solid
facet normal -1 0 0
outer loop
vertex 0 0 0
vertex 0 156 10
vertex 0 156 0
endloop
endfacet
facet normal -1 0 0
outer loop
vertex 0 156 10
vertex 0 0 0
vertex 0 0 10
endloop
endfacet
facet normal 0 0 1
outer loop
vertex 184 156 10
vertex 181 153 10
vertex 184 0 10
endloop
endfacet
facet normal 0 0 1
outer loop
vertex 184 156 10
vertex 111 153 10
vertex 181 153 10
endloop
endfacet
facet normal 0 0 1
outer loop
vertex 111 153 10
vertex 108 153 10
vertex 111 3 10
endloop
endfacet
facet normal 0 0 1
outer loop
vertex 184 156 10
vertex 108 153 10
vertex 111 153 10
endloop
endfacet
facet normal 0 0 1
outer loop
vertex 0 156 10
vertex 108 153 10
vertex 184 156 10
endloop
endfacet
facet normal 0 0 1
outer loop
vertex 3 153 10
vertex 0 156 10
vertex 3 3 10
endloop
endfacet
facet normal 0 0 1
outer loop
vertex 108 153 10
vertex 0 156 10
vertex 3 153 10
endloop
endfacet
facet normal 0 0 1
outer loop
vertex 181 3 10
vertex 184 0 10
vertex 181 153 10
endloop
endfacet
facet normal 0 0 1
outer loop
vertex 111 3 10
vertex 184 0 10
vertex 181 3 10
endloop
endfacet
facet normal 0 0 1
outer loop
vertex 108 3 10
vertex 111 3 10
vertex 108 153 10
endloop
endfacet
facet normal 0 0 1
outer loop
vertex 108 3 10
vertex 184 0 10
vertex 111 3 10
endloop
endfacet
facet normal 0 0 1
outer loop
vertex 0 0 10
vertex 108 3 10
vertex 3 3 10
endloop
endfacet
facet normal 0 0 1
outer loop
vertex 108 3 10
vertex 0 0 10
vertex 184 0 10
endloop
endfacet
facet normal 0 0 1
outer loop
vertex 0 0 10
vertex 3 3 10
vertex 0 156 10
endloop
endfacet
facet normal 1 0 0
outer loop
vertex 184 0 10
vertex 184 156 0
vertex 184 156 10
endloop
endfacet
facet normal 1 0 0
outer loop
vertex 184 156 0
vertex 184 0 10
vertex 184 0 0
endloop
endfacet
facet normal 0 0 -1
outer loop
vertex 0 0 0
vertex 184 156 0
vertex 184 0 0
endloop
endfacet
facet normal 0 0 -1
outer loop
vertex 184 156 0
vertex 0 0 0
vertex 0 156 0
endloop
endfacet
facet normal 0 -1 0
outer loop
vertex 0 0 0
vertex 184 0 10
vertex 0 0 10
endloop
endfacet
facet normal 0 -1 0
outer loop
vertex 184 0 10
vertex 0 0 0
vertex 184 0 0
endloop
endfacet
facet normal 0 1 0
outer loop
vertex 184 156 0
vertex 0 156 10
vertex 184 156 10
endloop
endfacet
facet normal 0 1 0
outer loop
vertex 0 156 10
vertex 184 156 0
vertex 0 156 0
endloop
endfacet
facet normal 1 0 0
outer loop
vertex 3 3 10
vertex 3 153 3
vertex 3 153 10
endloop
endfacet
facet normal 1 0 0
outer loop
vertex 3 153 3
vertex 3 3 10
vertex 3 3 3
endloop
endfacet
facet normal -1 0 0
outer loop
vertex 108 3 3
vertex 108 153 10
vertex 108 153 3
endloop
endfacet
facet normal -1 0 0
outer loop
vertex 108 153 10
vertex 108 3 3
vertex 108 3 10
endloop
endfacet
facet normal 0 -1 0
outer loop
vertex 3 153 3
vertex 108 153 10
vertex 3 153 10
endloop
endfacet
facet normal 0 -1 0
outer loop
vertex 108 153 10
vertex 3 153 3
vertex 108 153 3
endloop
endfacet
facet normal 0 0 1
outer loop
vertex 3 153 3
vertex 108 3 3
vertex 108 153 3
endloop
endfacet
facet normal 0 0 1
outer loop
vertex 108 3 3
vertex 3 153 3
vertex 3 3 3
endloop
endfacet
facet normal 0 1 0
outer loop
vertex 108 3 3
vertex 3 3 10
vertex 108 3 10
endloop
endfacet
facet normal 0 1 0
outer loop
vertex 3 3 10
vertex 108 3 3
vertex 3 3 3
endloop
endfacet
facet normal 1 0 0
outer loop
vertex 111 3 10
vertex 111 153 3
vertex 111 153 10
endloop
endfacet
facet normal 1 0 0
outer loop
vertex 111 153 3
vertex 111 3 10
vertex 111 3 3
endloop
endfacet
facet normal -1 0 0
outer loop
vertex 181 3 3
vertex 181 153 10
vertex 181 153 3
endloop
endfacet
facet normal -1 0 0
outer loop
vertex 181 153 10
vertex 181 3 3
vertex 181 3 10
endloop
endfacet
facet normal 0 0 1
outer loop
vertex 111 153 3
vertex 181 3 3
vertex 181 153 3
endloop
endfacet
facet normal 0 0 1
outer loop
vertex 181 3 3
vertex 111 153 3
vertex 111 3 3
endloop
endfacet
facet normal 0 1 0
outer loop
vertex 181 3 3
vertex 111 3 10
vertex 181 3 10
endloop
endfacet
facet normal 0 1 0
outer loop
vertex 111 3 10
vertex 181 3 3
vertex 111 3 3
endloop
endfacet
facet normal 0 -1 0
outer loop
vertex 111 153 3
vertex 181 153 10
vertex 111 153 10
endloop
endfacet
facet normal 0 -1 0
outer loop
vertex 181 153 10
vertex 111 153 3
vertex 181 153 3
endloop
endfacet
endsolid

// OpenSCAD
difference() {
    cube([184, 156, 10]);
    translate([3, 3, 3])
        cube([105, 150, 8]);
    translate([111, 3, 3])
        cube([70, 150, 8]);
}
